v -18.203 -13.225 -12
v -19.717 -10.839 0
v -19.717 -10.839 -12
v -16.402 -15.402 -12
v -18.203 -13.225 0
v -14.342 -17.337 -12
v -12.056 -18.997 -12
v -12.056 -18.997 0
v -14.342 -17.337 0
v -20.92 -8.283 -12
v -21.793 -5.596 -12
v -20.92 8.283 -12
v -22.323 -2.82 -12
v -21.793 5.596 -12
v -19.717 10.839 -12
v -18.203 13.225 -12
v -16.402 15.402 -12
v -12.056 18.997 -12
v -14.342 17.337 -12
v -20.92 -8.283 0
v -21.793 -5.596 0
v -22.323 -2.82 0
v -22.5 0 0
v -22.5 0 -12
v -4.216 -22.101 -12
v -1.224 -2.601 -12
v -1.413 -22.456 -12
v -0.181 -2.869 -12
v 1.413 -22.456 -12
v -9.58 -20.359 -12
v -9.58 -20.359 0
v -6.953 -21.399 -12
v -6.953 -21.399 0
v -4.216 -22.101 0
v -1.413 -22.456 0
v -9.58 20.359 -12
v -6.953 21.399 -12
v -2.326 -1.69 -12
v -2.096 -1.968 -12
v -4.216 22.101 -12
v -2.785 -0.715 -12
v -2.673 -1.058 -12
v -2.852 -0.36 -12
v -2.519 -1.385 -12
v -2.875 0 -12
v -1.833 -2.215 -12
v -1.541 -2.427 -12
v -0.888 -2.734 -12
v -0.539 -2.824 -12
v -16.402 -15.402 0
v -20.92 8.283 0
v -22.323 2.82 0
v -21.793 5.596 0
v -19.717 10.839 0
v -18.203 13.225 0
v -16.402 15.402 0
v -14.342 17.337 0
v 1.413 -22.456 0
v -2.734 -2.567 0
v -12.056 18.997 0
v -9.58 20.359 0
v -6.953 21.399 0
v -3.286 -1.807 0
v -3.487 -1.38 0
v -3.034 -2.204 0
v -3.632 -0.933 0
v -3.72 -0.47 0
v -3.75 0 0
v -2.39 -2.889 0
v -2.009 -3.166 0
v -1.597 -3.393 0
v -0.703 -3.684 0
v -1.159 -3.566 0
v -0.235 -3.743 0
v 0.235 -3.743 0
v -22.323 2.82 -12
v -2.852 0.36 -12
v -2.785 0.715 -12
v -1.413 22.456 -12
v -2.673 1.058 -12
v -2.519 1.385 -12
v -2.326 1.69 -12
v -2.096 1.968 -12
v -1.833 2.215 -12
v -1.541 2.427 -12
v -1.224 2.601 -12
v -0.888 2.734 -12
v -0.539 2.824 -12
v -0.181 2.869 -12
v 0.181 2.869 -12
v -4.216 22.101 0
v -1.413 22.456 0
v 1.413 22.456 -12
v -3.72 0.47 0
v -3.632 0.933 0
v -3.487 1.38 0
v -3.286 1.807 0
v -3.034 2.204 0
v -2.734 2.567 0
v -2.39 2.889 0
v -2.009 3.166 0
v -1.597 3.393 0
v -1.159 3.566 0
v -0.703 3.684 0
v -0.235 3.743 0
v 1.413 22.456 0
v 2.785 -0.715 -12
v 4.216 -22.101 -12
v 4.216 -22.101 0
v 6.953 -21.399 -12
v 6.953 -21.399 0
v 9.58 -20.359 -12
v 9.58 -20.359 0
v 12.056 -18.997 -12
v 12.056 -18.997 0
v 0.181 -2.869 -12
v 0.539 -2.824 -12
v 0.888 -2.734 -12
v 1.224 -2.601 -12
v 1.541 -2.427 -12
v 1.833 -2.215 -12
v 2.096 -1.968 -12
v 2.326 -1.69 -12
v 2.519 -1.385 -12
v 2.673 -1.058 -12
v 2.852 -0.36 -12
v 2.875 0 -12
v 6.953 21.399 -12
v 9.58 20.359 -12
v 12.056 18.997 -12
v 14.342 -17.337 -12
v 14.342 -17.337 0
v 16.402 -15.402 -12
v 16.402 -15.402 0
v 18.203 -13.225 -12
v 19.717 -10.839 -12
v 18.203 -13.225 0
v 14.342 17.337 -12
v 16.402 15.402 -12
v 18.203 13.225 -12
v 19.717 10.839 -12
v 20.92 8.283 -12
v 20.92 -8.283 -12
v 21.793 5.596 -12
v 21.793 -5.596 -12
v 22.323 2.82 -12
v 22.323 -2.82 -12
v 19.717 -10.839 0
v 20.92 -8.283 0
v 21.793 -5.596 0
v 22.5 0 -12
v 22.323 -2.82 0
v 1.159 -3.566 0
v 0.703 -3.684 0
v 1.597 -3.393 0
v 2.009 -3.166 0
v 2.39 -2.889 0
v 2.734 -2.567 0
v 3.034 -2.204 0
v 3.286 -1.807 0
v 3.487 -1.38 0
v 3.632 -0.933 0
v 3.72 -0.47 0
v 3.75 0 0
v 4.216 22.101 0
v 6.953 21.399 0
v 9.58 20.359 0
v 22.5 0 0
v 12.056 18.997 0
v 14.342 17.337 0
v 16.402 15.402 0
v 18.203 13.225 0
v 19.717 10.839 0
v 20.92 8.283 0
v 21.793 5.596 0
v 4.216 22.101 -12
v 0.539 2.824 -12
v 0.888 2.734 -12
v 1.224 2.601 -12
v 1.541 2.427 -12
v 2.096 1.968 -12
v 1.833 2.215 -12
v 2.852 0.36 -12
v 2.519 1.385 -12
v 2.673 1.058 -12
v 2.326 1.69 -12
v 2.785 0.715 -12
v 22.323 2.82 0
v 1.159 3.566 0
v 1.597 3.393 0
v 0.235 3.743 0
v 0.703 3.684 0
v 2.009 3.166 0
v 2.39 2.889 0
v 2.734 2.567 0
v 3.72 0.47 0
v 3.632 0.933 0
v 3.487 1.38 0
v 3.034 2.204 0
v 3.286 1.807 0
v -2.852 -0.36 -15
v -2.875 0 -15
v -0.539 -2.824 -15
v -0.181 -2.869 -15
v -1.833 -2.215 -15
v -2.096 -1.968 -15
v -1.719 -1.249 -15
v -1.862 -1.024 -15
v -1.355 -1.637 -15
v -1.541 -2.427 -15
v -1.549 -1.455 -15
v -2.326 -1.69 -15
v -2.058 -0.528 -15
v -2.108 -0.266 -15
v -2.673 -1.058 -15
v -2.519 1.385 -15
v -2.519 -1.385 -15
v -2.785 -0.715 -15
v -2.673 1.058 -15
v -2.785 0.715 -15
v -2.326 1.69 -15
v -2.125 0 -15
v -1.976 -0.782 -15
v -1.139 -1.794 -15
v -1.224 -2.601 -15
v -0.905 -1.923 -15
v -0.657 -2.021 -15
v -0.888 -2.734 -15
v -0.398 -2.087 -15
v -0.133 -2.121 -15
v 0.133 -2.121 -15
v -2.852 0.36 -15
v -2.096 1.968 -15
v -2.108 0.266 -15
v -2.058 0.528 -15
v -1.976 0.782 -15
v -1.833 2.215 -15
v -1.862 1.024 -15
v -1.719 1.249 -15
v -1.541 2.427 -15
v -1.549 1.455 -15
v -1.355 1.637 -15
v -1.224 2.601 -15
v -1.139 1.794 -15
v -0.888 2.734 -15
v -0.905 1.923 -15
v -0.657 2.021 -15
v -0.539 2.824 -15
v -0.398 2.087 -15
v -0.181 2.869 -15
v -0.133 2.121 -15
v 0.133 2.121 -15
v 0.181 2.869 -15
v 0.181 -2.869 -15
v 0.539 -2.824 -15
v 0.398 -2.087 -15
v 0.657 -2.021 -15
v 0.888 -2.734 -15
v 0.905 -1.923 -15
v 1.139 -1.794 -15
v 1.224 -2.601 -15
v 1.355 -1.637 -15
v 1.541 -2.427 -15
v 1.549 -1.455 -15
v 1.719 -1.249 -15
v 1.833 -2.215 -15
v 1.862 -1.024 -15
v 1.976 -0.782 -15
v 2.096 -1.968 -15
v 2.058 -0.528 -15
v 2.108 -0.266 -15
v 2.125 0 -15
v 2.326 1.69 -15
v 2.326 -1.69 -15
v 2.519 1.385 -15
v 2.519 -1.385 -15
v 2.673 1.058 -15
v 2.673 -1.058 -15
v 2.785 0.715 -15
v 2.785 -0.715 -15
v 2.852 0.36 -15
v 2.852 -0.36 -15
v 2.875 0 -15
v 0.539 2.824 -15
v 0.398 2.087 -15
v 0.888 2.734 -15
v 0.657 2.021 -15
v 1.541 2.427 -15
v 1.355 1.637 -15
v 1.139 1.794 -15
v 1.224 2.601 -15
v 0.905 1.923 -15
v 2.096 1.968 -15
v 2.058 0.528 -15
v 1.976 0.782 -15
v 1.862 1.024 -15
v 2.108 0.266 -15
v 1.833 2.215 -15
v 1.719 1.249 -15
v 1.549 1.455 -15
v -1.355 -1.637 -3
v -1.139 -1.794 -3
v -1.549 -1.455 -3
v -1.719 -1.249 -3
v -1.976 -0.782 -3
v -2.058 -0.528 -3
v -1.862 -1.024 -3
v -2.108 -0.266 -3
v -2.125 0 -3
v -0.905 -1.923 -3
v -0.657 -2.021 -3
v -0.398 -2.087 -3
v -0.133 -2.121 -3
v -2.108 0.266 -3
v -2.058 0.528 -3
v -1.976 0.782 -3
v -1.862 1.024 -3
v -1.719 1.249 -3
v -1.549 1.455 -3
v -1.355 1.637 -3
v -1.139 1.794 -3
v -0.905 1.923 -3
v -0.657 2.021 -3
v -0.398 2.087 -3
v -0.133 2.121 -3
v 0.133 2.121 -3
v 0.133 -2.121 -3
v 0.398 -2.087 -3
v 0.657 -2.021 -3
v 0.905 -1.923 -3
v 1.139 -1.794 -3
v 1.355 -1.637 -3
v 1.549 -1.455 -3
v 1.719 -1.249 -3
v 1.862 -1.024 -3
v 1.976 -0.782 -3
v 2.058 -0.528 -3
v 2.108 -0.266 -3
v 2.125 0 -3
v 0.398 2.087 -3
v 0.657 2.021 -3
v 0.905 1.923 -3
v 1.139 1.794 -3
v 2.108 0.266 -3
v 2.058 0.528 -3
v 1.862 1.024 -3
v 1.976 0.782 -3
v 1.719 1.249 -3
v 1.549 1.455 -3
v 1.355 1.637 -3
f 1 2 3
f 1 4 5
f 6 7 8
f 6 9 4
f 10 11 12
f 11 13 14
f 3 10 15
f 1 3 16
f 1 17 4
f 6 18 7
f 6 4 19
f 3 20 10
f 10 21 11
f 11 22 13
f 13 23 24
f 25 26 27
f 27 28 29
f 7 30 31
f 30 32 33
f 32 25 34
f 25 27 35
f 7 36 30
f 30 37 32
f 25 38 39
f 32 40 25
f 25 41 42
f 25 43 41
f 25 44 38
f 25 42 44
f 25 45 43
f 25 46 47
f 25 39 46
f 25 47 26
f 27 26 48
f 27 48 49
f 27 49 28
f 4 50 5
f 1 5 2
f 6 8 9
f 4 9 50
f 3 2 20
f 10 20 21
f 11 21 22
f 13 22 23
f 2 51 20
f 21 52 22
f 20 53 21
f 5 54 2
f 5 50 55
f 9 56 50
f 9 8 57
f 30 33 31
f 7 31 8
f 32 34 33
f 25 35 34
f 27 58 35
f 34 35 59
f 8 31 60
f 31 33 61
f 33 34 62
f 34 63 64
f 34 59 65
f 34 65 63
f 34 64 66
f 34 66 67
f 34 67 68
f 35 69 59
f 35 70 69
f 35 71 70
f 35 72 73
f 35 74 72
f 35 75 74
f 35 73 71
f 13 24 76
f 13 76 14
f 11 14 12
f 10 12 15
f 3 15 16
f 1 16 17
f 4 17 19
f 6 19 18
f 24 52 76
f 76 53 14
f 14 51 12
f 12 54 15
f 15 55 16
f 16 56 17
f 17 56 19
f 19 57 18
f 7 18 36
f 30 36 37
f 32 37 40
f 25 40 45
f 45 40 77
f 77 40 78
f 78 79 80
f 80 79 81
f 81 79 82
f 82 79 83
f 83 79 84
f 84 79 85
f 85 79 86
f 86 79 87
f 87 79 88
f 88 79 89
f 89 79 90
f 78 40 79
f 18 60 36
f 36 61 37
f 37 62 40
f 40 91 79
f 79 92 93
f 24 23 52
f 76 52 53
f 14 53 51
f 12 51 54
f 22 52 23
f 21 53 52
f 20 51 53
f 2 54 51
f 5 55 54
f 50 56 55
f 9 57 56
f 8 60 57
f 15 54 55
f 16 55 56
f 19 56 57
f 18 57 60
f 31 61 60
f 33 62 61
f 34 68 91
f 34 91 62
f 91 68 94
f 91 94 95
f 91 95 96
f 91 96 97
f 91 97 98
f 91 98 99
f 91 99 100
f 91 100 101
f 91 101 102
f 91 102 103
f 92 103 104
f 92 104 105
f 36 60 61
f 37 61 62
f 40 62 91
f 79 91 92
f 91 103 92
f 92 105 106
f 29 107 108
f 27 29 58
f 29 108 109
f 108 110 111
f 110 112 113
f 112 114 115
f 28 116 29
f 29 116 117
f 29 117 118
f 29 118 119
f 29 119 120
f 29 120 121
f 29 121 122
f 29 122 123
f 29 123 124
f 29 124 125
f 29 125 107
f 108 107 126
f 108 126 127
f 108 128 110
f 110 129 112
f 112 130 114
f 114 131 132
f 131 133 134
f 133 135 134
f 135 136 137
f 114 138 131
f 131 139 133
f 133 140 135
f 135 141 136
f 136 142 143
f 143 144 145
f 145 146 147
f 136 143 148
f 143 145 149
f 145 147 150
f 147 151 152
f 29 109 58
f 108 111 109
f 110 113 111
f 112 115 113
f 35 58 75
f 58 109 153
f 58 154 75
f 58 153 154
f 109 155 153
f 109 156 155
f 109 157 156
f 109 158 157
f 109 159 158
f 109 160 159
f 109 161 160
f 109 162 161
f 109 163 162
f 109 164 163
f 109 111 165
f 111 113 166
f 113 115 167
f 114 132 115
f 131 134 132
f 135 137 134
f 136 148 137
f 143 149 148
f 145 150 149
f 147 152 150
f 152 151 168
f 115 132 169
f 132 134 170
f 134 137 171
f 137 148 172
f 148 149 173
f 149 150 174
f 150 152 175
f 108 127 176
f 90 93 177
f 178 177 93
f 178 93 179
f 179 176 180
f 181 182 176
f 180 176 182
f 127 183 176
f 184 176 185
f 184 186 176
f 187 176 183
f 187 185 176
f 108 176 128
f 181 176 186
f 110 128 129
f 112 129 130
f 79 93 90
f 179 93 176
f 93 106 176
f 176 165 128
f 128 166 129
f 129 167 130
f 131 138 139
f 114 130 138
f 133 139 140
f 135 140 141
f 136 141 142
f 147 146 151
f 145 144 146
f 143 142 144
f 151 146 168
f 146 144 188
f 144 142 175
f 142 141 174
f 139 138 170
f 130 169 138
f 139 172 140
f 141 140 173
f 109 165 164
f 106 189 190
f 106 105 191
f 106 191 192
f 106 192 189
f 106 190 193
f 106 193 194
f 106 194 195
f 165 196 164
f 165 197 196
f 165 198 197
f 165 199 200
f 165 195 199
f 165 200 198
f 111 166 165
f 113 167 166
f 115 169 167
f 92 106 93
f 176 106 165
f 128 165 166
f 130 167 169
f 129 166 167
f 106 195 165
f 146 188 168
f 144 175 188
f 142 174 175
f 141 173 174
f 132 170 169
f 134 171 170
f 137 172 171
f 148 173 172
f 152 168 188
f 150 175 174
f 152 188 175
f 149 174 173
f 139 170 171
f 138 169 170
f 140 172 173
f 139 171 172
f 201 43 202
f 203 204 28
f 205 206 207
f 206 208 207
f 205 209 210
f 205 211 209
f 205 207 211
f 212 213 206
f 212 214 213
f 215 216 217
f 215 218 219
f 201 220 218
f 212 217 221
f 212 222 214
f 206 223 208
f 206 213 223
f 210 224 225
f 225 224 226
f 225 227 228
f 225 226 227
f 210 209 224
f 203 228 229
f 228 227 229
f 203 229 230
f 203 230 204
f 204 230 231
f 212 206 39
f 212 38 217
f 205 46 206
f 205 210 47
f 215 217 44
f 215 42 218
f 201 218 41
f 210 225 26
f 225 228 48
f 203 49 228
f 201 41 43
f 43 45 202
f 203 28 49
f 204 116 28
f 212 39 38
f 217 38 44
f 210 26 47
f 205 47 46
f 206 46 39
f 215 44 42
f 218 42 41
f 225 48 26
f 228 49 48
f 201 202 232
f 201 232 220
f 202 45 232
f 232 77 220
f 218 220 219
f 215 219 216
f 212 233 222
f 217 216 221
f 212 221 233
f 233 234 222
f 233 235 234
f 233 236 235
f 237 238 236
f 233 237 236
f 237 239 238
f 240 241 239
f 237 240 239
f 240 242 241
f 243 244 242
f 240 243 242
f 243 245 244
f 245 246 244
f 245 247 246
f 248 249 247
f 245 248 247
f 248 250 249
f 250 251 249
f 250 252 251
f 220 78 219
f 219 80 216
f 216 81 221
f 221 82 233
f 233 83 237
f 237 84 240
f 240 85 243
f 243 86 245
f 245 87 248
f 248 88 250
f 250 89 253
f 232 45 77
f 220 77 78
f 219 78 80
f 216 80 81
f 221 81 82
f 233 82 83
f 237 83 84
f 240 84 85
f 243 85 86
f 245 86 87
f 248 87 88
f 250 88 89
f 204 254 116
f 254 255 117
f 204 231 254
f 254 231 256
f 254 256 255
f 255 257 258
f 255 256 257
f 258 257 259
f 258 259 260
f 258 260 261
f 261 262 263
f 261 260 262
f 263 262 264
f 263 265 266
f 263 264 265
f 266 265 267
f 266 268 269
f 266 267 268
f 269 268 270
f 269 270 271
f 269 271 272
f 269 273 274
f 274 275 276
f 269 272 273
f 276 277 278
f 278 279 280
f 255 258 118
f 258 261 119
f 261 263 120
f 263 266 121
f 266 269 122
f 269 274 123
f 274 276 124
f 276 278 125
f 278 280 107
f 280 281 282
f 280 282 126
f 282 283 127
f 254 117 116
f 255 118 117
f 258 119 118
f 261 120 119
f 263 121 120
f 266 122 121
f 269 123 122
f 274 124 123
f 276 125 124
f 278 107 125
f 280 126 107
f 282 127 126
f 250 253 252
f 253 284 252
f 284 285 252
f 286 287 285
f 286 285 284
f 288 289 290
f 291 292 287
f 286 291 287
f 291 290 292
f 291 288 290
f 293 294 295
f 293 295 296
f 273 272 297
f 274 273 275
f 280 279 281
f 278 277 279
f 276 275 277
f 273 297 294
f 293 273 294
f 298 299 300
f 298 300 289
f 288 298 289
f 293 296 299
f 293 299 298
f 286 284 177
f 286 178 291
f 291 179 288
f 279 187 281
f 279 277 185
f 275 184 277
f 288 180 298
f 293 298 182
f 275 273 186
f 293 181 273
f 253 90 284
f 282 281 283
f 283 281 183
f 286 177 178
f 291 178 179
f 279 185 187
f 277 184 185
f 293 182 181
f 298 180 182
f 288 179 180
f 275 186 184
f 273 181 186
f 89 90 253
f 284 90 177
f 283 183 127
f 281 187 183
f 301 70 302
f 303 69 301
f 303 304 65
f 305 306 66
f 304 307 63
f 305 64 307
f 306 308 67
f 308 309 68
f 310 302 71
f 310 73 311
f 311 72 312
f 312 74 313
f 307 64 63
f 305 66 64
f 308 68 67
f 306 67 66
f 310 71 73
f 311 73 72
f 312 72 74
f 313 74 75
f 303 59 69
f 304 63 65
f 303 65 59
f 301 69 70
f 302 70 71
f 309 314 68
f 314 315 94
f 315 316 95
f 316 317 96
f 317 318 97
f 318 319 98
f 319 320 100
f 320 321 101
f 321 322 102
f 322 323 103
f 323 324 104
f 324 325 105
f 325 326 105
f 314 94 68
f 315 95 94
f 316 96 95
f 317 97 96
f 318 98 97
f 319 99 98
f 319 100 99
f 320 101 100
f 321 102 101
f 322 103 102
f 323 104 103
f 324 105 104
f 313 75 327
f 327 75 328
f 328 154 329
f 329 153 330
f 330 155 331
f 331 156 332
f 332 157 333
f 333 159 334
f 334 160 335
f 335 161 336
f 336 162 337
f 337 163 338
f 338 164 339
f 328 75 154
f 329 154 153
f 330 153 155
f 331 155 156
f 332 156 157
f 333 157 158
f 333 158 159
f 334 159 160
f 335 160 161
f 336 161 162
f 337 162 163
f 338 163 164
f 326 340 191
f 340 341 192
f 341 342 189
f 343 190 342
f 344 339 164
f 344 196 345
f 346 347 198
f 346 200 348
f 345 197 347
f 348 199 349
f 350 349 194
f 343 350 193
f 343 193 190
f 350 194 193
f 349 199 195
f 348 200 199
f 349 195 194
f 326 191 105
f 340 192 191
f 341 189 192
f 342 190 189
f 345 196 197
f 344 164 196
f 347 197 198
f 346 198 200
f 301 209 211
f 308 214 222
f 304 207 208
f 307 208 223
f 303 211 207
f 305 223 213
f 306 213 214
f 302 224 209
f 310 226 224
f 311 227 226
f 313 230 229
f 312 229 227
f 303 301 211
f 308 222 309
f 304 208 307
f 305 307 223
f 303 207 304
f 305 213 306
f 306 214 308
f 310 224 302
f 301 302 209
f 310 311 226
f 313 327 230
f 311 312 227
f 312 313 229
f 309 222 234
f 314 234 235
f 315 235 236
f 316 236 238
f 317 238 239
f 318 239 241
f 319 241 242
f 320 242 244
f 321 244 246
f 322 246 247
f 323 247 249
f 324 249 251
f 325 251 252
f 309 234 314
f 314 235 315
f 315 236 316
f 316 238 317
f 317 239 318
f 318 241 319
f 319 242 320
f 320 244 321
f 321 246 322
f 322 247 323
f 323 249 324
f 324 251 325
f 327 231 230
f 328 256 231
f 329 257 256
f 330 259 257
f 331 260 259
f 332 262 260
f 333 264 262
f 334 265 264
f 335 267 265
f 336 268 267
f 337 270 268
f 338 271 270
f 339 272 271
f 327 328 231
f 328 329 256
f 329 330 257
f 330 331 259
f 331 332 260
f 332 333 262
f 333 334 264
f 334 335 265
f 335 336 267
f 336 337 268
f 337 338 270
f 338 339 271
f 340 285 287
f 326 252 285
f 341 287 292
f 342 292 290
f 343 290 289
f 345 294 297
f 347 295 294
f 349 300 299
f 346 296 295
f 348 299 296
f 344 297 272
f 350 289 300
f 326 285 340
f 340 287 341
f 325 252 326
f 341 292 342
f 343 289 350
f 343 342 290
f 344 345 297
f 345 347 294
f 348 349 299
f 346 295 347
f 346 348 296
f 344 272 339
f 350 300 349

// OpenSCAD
$fn = 50;


difference() {
	union() {
		translate(v = [0, 0, -12.0000000000]) {
			cylinder(h = 12, r = 22.5000000000);
		}
		#translate(v = [0, 0, -15.0000000000]) {
			cylinder(h = 15, r = 2.8750000000);
		}
	}
	union() {
		translate(v = [0, 0, 0]) {
			rotate(a = [0, 0, 0]) {
				difference() {
					union() {
						translate(v = [0, 0, -15.0000000000]) {
							cylinder(h = 15, r = 2.0000000000);
						}
						translate(v = [0, 0, -3]) {
							cylinder(h = 3, r1 = 2.1250000000, r2 = 3.7500000000);
						}
						translate(v = [0, 0, -15.0000000000]) {
							cylinder(h = 15, r = 2.1250000000);
						}
						translate(v = [0, 0, -15.0000000000]) {
							cylinder(h = 15, r = 2.0000000000);
						}
					}
					union();
				}
			}
		}
	}
}
